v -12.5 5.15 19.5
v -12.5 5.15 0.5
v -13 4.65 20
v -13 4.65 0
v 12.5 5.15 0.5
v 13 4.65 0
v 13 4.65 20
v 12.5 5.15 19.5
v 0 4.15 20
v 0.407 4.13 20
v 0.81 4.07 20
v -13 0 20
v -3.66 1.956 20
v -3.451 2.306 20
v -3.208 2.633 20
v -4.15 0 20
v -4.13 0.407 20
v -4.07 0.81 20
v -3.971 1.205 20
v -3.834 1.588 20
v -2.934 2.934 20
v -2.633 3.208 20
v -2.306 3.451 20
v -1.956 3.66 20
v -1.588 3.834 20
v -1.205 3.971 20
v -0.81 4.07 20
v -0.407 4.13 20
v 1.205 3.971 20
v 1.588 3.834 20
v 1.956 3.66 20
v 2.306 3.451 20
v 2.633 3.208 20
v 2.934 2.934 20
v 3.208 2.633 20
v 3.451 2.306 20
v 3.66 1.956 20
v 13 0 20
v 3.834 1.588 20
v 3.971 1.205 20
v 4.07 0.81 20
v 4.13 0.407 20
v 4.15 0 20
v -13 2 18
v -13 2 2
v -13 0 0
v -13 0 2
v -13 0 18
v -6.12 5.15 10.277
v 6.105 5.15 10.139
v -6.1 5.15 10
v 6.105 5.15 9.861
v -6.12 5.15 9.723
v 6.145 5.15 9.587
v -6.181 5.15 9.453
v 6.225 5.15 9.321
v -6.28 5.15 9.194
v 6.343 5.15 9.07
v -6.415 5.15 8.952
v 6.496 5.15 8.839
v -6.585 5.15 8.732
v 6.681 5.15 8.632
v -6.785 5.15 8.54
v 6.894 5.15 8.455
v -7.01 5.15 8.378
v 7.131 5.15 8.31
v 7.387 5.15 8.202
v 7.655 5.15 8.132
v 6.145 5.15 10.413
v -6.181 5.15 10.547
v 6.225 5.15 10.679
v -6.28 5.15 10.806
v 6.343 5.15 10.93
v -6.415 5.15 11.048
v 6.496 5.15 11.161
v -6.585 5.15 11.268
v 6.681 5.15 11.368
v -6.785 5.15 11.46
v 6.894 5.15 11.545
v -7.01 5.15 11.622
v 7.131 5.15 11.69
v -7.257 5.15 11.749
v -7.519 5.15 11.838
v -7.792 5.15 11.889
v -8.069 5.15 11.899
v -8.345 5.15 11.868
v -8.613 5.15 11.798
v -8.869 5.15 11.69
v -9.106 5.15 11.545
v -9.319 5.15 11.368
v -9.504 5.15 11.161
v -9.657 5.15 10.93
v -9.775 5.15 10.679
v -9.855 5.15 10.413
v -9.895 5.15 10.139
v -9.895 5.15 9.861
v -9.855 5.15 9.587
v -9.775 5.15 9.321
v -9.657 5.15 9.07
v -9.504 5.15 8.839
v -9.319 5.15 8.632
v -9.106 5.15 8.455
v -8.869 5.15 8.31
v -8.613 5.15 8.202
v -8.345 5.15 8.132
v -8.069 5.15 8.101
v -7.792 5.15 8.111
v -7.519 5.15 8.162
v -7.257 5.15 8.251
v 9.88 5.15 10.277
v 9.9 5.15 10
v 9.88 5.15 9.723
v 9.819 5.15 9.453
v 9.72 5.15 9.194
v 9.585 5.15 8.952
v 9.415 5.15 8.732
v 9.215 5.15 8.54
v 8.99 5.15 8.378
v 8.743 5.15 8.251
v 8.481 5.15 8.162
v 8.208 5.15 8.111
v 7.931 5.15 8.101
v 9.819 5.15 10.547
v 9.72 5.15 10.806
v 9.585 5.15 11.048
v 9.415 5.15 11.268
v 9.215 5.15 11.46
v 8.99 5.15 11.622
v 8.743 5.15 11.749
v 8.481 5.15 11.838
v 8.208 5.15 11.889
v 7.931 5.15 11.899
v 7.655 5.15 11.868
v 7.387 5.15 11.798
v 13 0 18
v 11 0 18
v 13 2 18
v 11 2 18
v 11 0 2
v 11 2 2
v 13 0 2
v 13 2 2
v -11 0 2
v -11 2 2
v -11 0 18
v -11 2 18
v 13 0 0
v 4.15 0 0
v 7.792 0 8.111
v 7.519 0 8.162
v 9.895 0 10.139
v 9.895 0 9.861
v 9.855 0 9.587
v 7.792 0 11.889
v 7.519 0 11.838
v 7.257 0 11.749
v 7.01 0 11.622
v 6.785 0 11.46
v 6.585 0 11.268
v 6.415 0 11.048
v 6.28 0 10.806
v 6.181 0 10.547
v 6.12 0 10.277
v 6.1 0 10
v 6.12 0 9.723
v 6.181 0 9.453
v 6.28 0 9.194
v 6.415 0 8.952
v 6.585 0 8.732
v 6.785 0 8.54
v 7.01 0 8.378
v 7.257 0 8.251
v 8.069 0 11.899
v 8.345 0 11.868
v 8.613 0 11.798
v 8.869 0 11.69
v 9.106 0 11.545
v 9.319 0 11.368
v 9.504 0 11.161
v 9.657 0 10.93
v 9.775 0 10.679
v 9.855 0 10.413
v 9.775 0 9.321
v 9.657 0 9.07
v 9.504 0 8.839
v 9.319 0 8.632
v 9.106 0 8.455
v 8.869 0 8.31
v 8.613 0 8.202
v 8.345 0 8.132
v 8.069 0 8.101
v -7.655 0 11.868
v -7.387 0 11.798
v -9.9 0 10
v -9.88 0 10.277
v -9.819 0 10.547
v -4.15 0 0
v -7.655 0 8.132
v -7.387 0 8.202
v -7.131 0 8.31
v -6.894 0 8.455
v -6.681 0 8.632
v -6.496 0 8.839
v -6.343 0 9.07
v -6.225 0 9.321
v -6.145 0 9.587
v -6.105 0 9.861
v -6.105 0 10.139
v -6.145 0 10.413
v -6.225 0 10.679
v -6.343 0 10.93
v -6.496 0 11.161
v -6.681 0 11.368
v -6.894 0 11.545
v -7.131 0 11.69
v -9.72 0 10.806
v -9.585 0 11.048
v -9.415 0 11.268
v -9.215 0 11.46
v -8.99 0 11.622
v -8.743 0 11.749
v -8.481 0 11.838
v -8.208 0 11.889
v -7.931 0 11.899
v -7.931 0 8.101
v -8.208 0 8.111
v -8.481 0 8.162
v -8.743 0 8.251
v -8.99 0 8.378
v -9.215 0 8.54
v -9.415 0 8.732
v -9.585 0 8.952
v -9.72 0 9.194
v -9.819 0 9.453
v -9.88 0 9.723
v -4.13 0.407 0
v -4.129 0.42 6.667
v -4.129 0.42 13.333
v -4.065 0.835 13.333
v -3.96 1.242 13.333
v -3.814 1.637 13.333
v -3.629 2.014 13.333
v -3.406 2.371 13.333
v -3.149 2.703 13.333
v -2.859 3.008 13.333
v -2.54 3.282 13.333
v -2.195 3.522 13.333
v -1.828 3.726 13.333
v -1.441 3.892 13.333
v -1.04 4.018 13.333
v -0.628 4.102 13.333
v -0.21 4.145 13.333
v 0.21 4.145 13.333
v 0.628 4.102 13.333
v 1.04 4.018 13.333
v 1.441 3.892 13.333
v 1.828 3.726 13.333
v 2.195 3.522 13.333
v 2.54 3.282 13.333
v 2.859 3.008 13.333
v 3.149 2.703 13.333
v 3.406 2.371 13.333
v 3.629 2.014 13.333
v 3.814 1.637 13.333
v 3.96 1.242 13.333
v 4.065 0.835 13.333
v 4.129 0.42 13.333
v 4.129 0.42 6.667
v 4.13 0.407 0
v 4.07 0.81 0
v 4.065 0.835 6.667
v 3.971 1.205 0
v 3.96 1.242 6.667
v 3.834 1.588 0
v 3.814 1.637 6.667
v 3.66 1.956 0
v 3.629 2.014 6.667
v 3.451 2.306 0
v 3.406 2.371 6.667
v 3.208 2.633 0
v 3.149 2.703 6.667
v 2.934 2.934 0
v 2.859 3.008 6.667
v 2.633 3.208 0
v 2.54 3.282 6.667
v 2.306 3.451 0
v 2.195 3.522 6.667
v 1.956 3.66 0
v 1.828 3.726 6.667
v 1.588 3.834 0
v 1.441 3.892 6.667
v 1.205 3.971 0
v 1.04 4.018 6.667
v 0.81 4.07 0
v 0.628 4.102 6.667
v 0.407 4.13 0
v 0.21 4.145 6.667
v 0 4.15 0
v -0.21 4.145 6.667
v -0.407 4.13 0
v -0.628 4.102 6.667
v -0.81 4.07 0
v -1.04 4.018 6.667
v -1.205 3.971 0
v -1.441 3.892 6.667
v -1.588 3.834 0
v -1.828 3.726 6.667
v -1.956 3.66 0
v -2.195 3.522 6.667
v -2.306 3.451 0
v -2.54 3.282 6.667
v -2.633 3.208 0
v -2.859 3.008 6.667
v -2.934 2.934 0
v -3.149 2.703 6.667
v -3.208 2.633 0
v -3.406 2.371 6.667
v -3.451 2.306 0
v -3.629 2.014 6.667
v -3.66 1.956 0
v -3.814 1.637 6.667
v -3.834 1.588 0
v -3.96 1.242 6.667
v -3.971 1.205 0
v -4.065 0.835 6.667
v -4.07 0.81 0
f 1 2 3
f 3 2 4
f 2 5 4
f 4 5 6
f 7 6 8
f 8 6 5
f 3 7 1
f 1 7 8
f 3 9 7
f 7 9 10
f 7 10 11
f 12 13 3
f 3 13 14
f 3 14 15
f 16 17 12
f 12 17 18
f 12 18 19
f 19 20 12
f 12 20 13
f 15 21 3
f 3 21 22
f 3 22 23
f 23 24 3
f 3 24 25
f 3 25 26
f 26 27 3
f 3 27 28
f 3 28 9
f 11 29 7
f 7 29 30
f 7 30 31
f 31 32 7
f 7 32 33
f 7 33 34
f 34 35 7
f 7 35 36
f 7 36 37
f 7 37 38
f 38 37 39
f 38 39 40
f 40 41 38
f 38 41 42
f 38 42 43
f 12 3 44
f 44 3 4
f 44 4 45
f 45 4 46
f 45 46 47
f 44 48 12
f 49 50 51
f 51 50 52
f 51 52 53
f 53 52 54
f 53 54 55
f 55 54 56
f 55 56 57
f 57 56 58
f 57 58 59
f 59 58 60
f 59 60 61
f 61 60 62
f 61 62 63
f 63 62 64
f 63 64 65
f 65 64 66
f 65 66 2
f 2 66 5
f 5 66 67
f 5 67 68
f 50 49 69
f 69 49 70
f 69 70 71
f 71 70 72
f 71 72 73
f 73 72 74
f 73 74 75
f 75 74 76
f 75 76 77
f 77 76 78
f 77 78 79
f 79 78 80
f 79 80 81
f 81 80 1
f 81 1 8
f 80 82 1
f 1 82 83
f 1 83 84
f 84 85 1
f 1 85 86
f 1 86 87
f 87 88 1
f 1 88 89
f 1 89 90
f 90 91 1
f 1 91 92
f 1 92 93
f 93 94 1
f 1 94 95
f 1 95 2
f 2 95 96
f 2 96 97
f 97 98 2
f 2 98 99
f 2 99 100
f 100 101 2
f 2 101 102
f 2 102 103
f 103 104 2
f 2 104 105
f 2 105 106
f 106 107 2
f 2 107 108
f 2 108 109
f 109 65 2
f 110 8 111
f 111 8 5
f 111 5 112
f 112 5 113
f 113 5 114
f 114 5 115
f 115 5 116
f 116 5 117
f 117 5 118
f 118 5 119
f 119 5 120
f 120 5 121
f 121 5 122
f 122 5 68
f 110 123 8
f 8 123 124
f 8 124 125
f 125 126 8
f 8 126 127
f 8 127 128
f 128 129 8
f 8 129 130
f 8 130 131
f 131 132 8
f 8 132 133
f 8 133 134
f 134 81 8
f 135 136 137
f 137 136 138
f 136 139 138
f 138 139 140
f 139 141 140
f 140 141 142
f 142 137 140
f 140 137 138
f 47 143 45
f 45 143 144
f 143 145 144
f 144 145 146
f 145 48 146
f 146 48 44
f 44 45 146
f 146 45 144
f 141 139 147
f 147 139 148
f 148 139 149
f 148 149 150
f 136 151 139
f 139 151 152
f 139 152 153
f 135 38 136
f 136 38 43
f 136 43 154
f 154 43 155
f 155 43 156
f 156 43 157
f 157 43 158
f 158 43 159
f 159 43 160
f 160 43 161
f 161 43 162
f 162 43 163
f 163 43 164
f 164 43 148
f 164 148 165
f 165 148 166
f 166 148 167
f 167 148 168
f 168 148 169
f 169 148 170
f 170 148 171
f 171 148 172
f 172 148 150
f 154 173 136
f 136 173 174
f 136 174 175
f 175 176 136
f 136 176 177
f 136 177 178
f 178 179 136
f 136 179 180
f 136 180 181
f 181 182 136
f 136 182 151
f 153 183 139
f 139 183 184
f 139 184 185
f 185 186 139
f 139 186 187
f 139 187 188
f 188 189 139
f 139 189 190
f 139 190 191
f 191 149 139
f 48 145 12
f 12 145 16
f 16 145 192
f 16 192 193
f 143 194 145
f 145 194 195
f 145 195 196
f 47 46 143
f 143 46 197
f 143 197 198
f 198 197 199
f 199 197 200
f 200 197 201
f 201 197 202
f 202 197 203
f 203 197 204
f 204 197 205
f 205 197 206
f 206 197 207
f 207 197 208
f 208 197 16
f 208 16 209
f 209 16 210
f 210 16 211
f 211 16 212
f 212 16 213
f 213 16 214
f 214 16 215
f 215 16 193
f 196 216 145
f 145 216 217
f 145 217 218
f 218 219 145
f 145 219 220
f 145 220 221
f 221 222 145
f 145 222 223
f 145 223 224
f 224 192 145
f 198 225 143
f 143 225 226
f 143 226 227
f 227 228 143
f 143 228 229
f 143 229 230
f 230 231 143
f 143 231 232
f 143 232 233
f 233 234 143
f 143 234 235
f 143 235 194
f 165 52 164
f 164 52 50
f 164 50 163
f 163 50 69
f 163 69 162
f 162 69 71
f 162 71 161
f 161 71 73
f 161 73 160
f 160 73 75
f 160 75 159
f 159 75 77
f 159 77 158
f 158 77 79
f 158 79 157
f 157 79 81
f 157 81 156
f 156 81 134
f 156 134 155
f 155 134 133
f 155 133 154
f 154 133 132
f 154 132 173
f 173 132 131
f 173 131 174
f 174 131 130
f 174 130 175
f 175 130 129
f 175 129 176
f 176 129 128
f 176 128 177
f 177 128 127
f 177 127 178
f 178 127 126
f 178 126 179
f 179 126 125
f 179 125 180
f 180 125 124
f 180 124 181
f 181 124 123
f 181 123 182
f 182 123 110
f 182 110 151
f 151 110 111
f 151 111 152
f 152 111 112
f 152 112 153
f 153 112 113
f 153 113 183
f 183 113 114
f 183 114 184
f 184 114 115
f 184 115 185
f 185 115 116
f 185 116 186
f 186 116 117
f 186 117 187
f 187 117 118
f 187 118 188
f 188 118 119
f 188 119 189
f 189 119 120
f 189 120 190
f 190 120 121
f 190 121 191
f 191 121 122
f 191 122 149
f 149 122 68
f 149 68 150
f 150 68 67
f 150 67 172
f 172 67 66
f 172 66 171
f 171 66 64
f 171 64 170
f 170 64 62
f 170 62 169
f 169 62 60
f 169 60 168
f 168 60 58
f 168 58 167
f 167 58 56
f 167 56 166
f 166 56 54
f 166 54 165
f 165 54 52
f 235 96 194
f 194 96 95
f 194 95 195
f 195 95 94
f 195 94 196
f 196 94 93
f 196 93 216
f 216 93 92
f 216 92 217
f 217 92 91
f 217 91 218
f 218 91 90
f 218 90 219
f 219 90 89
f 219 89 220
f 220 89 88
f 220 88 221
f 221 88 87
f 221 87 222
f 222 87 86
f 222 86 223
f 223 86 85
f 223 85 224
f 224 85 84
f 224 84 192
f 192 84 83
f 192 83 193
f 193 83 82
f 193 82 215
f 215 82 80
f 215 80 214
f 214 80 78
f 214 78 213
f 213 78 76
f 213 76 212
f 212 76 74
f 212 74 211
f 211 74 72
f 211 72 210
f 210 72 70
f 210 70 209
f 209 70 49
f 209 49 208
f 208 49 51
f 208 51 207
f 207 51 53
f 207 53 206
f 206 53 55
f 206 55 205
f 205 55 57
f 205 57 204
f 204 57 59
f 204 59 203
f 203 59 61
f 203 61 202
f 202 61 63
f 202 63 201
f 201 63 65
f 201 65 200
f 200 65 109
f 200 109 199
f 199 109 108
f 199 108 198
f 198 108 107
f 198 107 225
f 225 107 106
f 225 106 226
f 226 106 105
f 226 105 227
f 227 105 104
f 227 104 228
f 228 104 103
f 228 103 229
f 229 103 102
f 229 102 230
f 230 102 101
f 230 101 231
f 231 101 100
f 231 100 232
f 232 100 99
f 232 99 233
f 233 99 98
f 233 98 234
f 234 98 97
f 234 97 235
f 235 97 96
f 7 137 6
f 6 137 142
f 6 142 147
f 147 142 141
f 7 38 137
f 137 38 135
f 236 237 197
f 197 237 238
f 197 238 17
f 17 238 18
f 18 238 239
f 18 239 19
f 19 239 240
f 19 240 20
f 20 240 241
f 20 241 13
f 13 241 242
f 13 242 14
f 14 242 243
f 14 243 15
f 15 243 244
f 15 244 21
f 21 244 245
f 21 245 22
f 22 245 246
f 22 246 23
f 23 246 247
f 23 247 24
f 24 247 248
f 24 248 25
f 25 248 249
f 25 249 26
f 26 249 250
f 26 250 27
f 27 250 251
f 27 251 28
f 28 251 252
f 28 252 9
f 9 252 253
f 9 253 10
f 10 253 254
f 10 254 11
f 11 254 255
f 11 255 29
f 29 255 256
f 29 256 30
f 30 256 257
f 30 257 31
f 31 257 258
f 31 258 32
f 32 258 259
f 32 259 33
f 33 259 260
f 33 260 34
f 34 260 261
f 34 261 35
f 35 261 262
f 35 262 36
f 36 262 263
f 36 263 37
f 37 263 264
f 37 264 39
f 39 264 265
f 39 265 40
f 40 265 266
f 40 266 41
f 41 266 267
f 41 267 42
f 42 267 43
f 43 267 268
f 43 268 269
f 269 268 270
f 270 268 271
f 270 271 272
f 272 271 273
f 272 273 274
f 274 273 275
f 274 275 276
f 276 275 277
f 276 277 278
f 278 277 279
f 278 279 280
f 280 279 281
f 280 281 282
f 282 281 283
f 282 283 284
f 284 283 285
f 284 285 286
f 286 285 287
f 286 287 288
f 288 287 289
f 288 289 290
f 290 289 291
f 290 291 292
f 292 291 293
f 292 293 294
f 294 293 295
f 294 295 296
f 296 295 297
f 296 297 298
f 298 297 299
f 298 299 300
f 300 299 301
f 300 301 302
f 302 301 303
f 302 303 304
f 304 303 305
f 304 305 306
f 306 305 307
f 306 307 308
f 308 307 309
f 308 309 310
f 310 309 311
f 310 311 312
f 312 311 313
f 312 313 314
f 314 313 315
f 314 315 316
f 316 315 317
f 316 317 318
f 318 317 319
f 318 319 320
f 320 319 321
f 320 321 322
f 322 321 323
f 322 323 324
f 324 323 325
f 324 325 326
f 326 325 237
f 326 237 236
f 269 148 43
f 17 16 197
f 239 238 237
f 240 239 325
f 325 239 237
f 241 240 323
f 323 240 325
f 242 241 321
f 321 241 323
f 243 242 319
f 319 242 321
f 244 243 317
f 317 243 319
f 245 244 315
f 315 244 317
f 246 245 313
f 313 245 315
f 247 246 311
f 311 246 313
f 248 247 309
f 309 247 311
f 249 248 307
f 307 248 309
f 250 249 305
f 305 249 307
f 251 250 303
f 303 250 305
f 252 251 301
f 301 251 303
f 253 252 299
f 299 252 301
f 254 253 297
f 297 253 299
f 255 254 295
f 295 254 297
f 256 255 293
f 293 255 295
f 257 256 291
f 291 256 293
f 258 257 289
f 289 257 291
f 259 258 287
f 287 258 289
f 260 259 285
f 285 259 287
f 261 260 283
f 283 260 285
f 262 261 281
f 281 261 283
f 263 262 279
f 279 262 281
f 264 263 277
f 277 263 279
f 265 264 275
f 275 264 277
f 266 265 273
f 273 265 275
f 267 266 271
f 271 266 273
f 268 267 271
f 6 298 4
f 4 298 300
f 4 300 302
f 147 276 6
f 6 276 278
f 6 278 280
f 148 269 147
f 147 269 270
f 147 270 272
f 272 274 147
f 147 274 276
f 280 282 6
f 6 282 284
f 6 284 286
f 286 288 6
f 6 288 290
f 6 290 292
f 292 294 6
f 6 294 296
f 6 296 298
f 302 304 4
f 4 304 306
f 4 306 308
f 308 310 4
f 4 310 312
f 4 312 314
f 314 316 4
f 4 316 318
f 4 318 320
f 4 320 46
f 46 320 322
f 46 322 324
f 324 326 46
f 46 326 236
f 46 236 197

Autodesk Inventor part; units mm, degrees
ref_plane "YZ Plane" through (0, 0, 0) normal (1, 0, 0) x (0, 1, 0)
ref_plane "XZ Plane" through (0, 0, 0) normal (0, 1, 0) x (-1, 0, 0)
ref_plane "XY Plane" through (0, 0, 0) normal (0, 0, 1) x (1, 0, 0)
sketch "Sketch1" plane through (0, 0, 0) normal (0, 0, 1) x (1, 0, 0)
  arc A0 (4.15, 0) -> (-4.15, 0) centre (0, 0) ccw
  line L0 (-21.6509, 0) -> (19.2313, 0) projected
  line L1 (-13, 0) -> (-13, 5.15)
  line L2 (-13, 5.15) -> (13, 5.15)
  line L3 (13, 5.15) -> (13, 0)
  line L4 (-13, 0) -> (-4.15, 0)
  line L5 (4.15, 0) -> (13, 0)
  dimension "d0" = 8.3
  dimension "d1" = 1
  dimension "d2" = 13
  dimension "d3" = 13
extrude "Extrusion1" add sketch "Sketch1" along normal blind 20 contours A0 L0 L1 L2 L3
sketch "Sketch2" plane through (-13, 5.15, 0) normal (0, 1, 0) x (1, 0, 0)
  line L0 (-4.8106, -10) -> (24.391, -10) construction
  line L1 (26, 0) -> (0, 0) construction
  line L2 (26, -20) -> (0, -20) construction
  circle A0 centre (5, -10) radius 1.9
  circle A1 centre (21, -10) radius 1.9
  point P0 (13, 0)
  dimension "d7" = 20
  dimension "d8" = 10
  dimension "d9" = 3.8
  dimension "d10" = 3.8
  dimension "d11" = 16
  dimension "d12" = 8
extrude "Extrusion2" cut sketch "Sketch2" against normal through all
sketch "Sketch3" plane through (-13, 0, 0) normal (0, -1, 0) x (1, 0, 0)
  line L0 (0, 0) -> (0, 20) projected
  line L1 (0, 2) -> (2, 2)
  line L2 (2, 2) -> (2, 18)
  line L3 (2, 18) -> (0, 18)
  line L4 (0, 18) -> (0, 2)
  line L5 (26, 0) -> (26, 20) projected
  line L6 (26, 2) -> (24, 2)
  line L7 (24, 2) -> (24, 18)
  line L8 (24, 18) -> (26, 18)
  line L9 (26, 18) -> (26, 2)
  line L10 (0, 0) -> (8.85, 0) projected
  line L11 (0, 20) -> (8.85, 20) projected
  line L12 (17.15, 20) -> (26, 20) projected
  line L13 (17.15, 0) -> (26, 0) projected
  point P0 (13, 0)
  point P1 (0, 18)
  dimension "d15" = 2
  dimension "d16" = 2
  dimension "d17" = 2
  dimension "d18" = 2
  dimension "d19" = 2
  dimension "d20" = 2
extrude "Extrusion3" cut sketch "Sketch3" against normal blind 2
chamfer "Chamfer1" distance 0.5 angle 45 4 edges at (13, 5.15, 10) (0, 5.15, 20) (-13, 5.15, 10) (0, 5.15, 0)
equation "\"d3\" = d2"
equation "\"d8\" = 0.5 * d7"
equation "\"d10\" = d9"
equation "\"d16\" = d15"
equation "\"d17\" = d15"
equation "\"d18\" = d16"
equation "\"d19\" = d16"
equation "\"d20\" = d17"
properties part number "_3DPrint"
